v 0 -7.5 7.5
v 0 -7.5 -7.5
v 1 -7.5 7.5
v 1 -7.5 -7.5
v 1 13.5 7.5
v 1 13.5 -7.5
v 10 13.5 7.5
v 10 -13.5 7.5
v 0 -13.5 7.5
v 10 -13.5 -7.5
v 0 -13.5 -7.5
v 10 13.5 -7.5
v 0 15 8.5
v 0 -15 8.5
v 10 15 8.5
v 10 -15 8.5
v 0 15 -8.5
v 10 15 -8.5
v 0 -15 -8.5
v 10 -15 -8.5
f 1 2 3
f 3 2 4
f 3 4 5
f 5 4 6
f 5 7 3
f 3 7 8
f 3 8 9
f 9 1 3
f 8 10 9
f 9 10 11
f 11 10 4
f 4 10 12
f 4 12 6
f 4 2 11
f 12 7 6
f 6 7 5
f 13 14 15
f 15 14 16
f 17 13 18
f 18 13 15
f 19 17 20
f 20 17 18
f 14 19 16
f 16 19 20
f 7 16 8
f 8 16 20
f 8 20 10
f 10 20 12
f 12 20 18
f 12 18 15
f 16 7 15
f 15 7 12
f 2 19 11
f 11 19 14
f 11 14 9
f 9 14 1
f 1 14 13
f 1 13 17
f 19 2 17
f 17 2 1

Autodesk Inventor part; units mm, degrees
ref_plane "YZ Plane" through (0, 0, 0) normal (1, 0, 0) x (0, 1, 0)
ref_plane "XZ Plane" through (0, 0, 0) normal (0, 1, 0) x (-1, 0, 0)
ref_plane "XY Plane" through (0, 0, 0) normal (0, 0, 1) x (1, 0, 0)
sketch "Esquisse1" plane through (0, 0, 0) normal (1, 0, 0) x (0, 1, 0)
  line L0 (15, 8.5) -> (-15, 8.5)
  line L1 (-15, 8.5) -> (-15, -8.5)
  line L2 (-15, -8.5) -> (15, -8.5)
  line L3 (15, -8.5) -> (15, 8.5)
  point P0 (0, 0)
  point P1 (0, 0)
  point P2 (0, 0)
  dimension "d4" = 30
  dimension "d5" = 17
extrude "Extrusion1" add sketch "Esquisse1" along normal blind 10
sketch "Esquisse2" plane through (10, 0, 0) normal (1, 0, 0) x (0, 0, -1)
  line L0 (-7.5, 13.5) -> (7.5, 13.5)
  line L1 (7.5, 13.5) -> (7.5, -13.5)
  line L2 (7.5, -13.5) -> (-7.5, -13.5)
  line L3 (-7.5, -13.5) -> (-7.5, 13.5)
  line L4 (-7.5, 13.5) -> (7.5, -13.5)
  line L5 (-7.5, -13.5) -> (7.5, 13.5)
  point P0 (0, 0)
  point P1 (0, 0)
  point P2 (0, 0)
  dimension "d8" = 27
  dimension "d9" = 15
extrude "Extrusion2" cut sketch "Esquisse2" against normal blind 9
sketch "Esquisse3" plane through (1, 0, 0) normal (1, 0, 0) x (0, 0, -1)
  line L0 (7.5, -13.5) -> (-7.5, -13.5) projected
  line L1 (7.5, 13.5) -> (7.5, -13.5) projected
  line L2 (-7.5, -13.5) -> (7.5, -13.5)
  line L3 (7.5, -13.5) -> (7.5, -7.5)
  line L4 (7.5, -7.5) -> (-7.5, -7.5)
  line L5 (-7.5, -7.5) -> (-7.5, -13.5)
  point P0 (0, 0)
  dimension "d12" = 6
extrude "Extrusion3" cut sketch "Esquisse3" against normal blind 9
properties part number "support_tof_actionneur_panneaux_solaires"
